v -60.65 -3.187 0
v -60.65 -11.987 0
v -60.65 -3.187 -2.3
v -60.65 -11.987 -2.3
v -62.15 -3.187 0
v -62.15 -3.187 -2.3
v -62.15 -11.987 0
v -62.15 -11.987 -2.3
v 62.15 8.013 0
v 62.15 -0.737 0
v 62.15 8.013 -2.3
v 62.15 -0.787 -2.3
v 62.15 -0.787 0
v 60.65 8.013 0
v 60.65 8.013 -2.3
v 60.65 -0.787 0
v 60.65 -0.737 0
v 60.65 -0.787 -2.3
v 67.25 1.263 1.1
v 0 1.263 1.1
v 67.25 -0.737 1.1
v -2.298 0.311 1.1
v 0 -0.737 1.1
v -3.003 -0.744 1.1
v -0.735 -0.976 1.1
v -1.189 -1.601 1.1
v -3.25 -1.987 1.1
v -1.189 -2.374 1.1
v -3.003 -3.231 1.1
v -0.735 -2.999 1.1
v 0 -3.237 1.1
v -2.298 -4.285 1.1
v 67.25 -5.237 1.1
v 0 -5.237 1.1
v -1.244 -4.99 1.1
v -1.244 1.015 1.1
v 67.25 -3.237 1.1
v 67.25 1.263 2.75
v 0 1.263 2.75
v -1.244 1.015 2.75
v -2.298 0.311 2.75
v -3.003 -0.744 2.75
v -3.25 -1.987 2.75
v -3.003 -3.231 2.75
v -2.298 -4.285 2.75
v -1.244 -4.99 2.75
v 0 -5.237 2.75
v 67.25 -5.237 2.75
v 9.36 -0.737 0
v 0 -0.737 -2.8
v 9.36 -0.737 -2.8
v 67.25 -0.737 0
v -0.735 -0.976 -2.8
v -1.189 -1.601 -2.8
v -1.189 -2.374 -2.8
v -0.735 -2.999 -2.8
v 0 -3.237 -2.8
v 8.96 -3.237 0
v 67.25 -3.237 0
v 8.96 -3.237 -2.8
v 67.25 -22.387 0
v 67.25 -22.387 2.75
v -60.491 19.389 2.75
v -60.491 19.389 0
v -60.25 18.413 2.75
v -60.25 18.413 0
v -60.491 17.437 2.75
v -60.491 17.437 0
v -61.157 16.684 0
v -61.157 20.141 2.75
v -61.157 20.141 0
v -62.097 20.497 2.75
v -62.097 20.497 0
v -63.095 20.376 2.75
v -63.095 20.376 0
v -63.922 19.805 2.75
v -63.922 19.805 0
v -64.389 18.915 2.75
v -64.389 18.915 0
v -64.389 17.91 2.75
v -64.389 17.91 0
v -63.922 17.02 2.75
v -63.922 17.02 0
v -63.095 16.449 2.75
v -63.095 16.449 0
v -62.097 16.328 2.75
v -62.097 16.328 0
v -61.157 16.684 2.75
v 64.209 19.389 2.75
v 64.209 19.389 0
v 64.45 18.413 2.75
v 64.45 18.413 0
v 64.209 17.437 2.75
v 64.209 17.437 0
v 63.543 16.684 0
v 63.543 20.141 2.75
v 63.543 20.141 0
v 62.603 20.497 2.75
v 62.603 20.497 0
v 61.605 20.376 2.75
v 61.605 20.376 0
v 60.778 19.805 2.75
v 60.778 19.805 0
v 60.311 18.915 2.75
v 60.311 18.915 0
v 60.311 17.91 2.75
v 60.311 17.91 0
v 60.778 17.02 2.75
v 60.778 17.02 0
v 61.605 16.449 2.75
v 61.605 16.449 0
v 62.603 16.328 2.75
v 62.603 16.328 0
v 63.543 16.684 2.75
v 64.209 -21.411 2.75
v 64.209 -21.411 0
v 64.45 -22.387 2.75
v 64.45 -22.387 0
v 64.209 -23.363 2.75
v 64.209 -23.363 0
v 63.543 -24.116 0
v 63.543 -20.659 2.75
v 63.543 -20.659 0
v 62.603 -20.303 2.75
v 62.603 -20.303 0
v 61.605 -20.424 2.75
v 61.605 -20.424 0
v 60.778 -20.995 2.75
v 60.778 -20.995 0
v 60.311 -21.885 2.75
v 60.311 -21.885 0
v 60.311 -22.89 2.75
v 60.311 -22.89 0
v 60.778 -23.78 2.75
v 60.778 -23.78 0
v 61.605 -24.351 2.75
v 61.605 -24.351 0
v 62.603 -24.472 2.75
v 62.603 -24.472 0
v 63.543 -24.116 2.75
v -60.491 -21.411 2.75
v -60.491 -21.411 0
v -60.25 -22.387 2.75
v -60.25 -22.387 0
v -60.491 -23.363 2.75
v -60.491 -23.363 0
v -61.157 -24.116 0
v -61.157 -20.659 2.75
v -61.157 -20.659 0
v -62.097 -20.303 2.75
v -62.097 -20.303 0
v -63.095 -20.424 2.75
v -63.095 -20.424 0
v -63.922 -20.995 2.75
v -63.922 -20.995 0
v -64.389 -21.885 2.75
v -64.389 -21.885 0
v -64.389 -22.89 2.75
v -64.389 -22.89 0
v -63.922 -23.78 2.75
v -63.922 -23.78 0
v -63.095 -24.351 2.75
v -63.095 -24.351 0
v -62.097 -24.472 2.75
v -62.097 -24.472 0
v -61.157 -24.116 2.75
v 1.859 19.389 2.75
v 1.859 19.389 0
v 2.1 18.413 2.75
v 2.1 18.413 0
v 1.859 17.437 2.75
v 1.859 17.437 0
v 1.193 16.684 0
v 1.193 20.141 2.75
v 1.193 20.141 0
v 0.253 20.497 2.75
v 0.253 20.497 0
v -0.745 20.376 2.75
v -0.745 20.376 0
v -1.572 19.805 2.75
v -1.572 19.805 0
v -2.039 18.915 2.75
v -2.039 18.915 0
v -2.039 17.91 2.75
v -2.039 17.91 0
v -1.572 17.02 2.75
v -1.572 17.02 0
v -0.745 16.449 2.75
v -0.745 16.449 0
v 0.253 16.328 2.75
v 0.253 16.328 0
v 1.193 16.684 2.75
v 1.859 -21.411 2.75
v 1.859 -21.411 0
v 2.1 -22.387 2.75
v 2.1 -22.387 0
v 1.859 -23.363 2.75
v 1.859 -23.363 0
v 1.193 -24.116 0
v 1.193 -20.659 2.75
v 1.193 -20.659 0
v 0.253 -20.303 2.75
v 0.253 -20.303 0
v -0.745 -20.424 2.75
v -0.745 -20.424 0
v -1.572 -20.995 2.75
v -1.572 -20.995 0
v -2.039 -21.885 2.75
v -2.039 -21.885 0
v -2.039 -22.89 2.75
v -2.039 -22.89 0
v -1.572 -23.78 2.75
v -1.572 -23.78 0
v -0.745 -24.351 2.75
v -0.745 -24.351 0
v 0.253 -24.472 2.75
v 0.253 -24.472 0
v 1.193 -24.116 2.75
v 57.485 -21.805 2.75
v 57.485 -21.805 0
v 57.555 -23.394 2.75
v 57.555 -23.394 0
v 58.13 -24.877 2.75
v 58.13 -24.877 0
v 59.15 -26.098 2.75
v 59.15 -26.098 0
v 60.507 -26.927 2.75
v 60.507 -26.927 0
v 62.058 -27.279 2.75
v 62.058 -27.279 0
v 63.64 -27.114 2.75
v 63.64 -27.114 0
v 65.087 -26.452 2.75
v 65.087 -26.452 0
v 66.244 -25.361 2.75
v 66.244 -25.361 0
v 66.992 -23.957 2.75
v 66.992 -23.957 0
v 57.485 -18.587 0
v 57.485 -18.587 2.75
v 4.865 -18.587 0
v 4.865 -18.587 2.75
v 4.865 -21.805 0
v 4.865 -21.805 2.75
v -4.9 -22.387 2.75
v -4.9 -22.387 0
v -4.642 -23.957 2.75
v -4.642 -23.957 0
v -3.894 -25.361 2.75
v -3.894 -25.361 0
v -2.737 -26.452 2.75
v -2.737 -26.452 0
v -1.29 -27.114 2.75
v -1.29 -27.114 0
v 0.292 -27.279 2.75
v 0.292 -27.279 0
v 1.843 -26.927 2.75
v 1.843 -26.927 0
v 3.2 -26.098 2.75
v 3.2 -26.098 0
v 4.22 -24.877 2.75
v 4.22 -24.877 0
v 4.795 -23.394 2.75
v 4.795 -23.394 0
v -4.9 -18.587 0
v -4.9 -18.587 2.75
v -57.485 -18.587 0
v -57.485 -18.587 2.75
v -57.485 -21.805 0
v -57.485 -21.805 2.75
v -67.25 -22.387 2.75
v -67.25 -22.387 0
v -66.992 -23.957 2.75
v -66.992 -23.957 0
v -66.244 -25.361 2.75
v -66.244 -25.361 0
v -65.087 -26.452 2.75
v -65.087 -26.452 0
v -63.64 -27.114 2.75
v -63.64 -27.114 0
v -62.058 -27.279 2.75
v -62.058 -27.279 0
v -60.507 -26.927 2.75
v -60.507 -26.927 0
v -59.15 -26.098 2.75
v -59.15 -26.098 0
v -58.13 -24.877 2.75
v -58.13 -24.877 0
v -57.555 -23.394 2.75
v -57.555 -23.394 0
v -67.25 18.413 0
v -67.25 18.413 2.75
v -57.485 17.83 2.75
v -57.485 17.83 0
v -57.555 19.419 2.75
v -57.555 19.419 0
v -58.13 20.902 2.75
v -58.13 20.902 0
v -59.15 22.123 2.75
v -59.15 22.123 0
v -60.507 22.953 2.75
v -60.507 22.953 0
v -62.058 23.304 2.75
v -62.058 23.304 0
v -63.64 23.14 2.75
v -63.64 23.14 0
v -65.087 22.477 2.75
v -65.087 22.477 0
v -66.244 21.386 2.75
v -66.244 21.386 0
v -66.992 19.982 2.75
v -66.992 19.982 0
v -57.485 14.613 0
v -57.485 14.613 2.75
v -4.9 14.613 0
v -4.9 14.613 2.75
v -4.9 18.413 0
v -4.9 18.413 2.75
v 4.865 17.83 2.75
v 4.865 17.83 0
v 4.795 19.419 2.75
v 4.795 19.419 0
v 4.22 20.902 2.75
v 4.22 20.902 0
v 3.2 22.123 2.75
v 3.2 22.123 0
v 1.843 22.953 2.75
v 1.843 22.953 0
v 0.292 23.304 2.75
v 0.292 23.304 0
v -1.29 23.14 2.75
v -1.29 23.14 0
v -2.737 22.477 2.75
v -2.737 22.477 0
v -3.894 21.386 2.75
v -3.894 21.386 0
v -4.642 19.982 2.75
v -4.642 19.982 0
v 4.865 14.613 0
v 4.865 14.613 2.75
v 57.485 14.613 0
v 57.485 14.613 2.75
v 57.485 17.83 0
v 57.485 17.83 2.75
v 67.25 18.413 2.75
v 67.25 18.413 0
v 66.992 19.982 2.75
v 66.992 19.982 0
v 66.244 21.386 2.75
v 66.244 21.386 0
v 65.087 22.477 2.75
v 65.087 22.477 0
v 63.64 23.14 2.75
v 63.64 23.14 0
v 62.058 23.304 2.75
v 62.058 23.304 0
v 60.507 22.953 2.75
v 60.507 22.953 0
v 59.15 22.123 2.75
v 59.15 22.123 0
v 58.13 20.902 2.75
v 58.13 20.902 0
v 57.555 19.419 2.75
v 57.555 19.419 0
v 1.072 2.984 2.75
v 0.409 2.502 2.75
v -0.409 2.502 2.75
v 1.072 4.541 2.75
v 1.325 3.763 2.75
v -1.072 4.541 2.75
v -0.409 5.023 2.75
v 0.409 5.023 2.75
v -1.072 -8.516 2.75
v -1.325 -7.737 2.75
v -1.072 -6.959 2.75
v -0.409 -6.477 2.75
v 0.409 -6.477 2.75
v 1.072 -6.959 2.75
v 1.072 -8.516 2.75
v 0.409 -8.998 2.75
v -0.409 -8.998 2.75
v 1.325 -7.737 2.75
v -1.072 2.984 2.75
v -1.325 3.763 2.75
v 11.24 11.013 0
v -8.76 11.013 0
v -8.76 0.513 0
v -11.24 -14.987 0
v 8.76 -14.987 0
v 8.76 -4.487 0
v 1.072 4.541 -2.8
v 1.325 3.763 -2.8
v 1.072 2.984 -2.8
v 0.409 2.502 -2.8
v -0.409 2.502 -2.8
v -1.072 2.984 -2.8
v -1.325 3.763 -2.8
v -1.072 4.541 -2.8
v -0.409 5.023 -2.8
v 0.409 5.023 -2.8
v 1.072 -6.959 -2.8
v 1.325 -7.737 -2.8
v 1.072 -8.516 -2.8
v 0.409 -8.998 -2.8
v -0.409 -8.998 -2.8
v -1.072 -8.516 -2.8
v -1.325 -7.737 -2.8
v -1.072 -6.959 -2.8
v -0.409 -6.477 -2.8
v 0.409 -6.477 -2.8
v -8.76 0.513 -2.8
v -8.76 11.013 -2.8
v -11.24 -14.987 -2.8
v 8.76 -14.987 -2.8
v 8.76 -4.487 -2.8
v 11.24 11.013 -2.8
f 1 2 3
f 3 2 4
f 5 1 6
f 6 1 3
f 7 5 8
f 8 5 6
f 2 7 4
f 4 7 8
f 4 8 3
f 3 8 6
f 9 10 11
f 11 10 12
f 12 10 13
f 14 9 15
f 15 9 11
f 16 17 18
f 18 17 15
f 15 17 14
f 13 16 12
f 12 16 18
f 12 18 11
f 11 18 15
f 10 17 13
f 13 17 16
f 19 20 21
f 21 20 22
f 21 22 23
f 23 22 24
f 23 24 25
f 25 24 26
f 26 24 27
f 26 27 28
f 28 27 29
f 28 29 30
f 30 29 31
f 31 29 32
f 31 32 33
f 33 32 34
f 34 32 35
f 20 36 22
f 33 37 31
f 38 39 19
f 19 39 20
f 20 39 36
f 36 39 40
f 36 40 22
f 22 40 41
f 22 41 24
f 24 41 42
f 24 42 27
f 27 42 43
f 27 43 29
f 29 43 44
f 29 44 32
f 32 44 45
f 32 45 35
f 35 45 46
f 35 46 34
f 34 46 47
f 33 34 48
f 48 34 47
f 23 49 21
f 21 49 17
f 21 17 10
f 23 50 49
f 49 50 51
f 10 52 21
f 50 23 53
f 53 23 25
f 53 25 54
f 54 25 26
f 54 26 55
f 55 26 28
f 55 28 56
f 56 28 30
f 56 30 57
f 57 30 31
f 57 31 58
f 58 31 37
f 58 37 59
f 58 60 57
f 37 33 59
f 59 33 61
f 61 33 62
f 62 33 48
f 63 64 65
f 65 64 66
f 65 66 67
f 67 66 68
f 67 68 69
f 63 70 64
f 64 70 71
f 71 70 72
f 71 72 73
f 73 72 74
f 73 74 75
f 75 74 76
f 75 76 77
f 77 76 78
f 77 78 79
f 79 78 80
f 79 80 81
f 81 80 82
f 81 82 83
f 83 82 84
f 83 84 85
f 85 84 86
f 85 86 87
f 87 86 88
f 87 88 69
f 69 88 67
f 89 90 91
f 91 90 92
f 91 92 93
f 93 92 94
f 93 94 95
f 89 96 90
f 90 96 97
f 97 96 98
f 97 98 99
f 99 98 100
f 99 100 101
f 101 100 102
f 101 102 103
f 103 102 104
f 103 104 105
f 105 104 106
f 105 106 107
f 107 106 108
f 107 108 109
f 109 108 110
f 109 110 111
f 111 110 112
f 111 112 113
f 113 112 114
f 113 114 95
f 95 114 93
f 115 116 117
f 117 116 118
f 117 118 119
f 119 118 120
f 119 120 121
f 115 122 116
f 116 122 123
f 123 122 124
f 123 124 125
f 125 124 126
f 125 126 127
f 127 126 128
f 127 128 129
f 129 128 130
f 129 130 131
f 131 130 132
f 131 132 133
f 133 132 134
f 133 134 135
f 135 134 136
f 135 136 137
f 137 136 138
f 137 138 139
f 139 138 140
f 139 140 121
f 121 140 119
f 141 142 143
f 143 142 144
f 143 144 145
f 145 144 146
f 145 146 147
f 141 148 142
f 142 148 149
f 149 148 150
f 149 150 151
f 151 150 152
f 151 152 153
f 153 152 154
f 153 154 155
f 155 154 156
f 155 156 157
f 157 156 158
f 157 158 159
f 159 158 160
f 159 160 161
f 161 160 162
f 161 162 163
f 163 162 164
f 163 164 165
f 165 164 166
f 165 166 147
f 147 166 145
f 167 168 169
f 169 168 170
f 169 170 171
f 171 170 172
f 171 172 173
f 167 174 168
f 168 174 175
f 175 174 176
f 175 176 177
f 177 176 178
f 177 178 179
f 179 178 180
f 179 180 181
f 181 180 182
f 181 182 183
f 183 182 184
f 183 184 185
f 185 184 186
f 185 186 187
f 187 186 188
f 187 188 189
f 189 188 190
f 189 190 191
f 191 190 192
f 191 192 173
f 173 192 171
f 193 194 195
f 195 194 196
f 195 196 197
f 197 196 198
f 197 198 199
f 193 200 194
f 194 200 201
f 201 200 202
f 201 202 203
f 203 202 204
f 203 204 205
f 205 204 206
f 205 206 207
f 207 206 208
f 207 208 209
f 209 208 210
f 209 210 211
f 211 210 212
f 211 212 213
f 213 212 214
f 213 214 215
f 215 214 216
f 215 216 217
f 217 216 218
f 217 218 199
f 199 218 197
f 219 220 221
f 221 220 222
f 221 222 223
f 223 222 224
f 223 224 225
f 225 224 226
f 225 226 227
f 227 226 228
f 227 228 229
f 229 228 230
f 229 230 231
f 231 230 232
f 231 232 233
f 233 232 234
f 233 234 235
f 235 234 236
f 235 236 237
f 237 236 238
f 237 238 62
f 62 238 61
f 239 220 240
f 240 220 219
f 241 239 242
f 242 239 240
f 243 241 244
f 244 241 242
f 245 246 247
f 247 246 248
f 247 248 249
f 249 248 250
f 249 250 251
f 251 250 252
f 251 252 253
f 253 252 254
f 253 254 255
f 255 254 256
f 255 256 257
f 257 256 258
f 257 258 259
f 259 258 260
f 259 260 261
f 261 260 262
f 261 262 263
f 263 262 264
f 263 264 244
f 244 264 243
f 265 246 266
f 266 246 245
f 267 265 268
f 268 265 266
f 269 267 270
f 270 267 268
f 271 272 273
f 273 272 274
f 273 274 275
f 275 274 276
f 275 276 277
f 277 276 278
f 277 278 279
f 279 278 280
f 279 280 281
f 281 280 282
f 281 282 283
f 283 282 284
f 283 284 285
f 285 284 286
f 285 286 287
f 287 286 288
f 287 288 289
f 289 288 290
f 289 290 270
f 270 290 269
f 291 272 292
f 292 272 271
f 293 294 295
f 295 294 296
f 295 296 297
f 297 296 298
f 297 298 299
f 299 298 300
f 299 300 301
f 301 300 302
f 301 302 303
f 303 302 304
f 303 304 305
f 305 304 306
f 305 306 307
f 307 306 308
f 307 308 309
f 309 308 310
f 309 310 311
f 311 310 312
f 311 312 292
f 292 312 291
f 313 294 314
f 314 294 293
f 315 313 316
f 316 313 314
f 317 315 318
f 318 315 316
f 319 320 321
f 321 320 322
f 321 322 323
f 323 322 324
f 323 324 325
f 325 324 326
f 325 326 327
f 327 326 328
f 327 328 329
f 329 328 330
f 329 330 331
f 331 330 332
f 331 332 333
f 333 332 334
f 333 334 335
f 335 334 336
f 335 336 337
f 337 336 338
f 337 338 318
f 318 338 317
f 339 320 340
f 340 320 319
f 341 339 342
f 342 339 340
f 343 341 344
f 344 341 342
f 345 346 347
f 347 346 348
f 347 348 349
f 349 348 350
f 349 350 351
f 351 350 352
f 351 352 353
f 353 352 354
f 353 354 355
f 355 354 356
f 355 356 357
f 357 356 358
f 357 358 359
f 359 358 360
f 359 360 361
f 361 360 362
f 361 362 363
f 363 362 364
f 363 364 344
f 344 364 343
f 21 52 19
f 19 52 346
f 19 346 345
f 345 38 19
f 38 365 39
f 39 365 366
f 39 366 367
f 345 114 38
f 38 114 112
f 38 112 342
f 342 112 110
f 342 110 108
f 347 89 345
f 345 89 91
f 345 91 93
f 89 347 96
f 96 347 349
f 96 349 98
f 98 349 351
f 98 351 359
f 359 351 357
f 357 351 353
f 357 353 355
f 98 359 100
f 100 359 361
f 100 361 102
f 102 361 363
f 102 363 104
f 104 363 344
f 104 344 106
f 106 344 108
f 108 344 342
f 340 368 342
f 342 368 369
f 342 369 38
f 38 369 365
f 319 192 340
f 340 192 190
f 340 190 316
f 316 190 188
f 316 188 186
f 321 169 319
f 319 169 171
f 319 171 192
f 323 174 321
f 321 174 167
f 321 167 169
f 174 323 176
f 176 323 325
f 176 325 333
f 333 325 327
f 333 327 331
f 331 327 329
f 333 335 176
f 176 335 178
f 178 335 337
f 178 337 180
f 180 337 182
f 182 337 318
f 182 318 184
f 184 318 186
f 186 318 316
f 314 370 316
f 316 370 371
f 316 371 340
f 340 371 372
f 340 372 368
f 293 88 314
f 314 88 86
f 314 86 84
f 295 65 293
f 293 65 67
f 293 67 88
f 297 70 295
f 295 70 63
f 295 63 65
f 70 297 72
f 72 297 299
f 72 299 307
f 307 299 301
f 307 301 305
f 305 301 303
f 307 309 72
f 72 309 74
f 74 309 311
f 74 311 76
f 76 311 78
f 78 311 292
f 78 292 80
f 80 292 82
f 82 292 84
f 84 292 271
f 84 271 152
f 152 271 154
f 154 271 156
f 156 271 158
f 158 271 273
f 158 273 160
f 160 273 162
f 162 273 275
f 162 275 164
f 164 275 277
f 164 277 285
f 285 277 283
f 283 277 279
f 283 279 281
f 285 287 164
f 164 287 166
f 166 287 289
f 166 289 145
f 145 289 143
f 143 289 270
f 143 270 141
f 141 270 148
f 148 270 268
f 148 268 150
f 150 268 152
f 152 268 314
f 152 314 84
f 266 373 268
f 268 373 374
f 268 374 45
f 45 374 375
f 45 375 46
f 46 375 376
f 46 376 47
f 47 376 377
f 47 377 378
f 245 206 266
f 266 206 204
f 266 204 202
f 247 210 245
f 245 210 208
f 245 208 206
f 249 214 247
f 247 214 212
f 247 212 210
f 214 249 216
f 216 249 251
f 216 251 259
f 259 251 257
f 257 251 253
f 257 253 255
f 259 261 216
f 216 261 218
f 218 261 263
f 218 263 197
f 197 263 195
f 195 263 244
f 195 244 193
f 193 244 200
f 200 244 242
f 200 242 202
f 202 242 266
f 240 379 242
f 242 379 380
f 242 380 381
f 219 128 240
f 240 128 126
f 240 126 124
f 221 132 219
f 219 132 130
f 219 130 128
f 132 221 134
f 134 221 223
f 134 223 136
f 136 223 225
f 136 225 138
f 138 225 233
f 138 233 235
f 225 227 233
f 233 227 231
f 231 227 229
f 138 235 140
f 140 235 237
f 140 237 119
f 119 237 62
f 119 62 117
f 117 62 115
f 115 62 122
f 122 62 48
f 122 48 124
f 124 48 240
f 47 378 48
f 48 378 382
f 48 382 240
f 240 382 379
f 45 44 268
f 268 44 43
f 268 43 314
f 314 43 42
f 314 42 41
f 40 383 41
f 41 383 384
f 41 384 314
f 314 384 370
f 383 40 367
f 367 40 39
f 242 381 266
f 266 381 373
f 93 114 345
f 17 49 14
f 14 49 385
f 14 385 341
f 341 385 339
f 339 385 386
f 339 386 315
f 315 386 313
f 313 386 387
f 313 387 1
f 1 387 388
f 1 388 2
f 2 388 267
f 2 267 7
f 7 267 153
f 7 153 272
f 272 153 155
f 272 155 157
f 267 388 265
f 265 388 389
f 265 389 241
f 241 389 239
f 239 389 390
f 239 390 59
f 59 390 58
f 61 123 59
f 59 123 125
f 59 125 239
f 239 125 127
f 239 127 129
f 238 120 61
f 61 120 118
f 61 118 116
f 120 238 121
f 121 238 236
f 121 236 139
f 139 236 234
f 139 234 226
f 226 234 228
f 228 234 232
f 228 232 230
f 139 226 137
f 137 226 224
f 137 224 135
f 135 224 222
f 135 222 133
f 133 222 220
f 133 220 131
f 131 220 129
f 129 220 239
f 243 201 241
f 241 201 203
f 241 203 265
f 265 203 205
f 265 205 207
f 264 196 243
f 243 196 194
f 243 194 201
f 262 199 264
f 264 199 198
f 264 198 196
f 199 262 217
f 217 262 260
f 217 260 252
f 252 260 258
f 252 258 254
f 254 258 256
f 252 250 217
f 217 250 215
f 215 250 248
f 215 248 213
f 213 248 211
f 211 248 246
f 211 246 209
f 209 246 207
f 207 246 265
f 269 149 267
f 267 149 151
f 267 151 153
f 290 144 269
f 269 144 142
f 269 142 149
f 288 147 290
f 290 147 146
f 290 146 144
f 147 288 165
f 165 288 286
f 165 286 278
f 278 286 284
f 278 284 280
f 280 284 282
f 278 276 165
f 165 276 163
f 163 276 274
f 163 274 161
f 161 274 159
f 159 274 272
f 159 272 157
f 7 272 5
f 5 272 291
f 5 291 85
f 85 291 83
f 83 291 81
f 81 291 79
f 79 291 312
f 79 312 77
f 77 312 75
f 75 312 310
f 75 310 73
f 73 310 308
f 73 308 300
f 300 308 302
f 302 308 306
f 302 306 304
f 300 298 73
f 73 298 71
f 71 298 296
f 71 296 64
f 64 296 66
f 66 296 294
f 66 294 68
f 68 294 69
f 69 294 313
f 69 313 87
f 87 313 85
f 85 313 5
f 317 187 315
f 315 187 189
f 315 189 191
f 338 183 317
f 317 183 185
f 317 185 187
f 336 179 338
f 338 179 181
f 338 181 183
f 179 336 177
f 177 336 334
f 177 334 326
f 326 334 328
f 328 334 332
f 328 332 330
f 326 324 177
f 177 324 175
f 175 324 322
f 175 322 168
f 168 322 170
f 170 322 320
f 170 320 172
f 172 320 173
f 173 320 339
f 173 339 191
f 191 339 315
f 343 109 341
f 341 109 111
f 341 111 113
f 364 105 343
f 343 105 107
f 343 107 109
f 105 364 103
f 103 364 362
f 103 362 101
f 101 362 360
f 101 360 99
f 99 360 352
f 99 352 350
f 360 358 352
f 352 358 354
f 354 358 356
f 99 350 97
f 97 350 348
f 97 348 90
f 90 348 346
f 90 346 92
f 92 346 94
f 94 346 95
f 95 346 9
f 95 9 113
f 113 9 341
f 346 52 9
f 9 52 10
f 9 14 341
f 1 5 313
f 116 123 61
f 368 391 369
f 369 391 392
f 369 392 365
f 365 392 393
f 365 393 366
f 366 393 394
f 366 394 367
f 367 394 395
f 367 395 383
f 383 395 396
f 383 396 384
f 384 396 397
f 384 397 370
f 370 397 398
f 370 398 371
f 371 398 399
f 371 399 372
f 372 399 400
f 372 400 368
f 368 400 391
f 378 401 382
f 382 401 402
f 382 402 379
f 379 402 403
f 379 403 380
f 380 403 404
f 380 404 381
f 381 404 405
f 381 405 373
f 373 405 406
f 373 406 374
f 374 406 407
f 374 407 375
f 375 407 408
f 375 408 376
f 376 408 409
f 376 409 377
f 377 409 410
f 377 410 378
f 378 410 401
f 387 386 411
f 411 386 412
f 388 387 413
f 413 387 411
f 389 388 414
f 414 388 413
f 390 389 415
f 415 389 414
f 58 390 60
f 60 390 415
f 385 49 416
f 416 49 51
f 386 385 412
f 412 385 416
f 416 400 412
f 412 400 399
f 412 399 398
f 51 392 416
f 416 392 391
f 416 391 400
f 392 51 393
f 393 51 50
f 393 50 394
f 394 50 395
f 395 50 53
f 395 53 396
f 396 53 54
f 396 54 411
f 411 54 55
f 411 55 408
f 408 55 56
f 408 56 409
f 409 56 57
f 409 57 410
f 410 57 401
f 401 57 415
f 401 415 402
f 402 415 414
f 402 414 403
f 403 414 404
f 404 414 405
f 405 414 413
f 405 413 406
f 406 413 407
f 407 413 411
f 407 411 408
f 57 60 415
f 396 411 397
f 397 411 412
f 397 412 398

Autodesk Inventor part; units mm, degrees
ref_plane "YZ Plane" through (0, 0, 0) normal (1, 0, 0) x (0, 1, 0)
ref_plane "XZ Plane" through (0, 0, 0) normal (0, 1, 0) x (-1, 0, 0)
ref_plane "XY Plane" through (0, 0, 0) normal (0, 0, 1) x (1, 0, 0)
sketch "Sketch1" plane through (0, 0, 0) normal (0, 0, 1) x (1, 0, 0)
  line L0 (-8.76, 11.0126) -> (-8.76, 0.5126)
  line L1 (-8.76, 0.5126) -> (-11.24, -14.9874)
  line L2 (-11.24, -14.9874) -> (8.76, -14.9874)
  line L3 (8.76, -14.9874) -> (8.76, -4.4874)
  line L4 (11.24, 11.0126) -> (-8.76, 11.0126)
  line L5 (0, 12.916) -> (0, -18.5653)
  line L6 (-8.76, 0.5126) -> (13.6474, 0.5126) construction
  line L7 (8.76, -4.4874) -> (-2.6872, -4.4874) construction
  line L8 (-5.8361, -1.9874) -> (18.6079, -1.9874) construction
  circle A0 centre (0, -7.7374) radius 1.325
  circle A1 centre (0, 3.7626) radius 1.325
  line L9 (22.7948, -1.9874) -> (0, -1.9874) construction
  line L10 (9.36, -0.7374) -> (0, -0.7374)
  line L11 (0, -3.2374) -> (8.96, -3.2374)
  arc A2 (0, -0.7374) -> (0, -3.2374) centre (0, -1.9874) ccw
  line L12 (8.76, -4.4874) -> (8.96, -3.2374)
  line L13 (9.36, -0.7374) -> (11.24, 11.0126)
  point P0 (0, 0)
  point P1 (-8.76, -4.4874)
  point P2 (11.3974, -1.9874)
  dimension "d0" = 2.48
  dimension "d1" = 15.5
  dimension "d2" = 15.5
  dimension "d3" = 2.48
  dimension "d4" = 10.5
  dimension "d5" = 10.5
  dimension "d6" = 20
  dimension "d7" = 20
  dimension "d8" = 2.65
  dimension "d9" = 7.25
  dimension "d12" = 2.5
  dimension "d26" = 11.75
  dimension "d27" = 14.25
extrude "Extrusion1" add sketch "Sketch1" against normal blind 2.8 contours L4 L5 A1 A2 A0 L2 L1 L0 | L4 L13 L10 L5 A1 | L5 A0 L11 L12 L3 L2
sketch "Sketch2" plane through (0, 0, 0) normal (0, 0, 1) x (1, 0, 0)
  line L0 (-67.25, -18.5874) -> (-67.25, 14.6126)
  line L1 (0, 12.916) -> (0, -18.5653) construction
  line L2 (-5.8361, -1.9874) -> (18.6079, -1.9874) construction
  line L3 (-67.25, 14.6126) -> (-67.25, 18.4126)
  line L4 (-57.4847, 14.6126) -> (-57.4847, 17.8301)
  arc A0 (-57.4847, 17.8301) -> (-67.25, 18.4126) centre (-62.35, 18.4126) ccw
  line L5 (0, 12.916) -> (0, -18.5653)
  circle A1 centre (-62.35, 18.4126) radius 2.1
  arc A2 (0, -0.7374) -> (0, -3.2374) centre (0, -1.9874) ccw projected
  line L6 (-1.25, -1.9874) -> (17.7749, -1.9874) construction
  line L7 (0, -3.2374) -> (67.25, -3.2374)
  line L8 (67.25, -0.7374) -> (0, -0.7374)
  arc A3 (0, -0.7374) -> (0, -3.2374) centre (0, -1.9874) ccw
  line L9 (67.25, 14.6126) -> (67.25, -0.7374)
  line L10 (67.25, -3.2374) -> (67.25, -18.5874)
  line L11 (-4.9, -18.5874) -> (-24.8081, -18.5874)
  circle A4 centre (0, 3.7626) radius 1.325 projected
  circle A5 centre (0, -7.7374) radius 1.325 projected
  line L12 (67.25, 14.6126) -> (67.25, 18.4126)
  line L13 (57.4847, 14.6126) -> (57.4847, 17.8301)
  arc A6 (67.25, 18.4126) -> (57.4847, 17.8301) centre (62.35, 18.4126) ccw
  circle A7 centre (62.35, 18.4126) radius 2.1
  line L14 (-67.25, -18.5874) -> (-67.25, -22.3874)
  line L15 (-57.4847, -18.5874) -> (-57.4847, -21.8049)
  arc A8 (-67.25, -22.3874) -> (-57.4847, -21.8049) centre (-62.35, -22.3874) ccw
  circle A9 centre (-62.35, -22.3874) radius 2.1
  line L16 (57.4847, -18.5874) -> (57.4847, -21.8049)
  circle A10 centre (62.35, -22.3874) radius 2.1
  line L17 (67.25, -18.5874) -> (67.25, -22.3874)
  arc A11 (57.4847, -21.8049) -> (67.25, -22.3874) centre (62.35, -22.3874) ccw
  line L18 (-4.9, 14.6126) -> (-4.9, 18.4126)
  line L19 (4.8653, 14.6126) -> (4.8653, 17.8301)
  arc A12 (4.8653, 17.8301) -> (-4.9, 18.4126) centre (0, 18.4126) ccw
  circle A13 centre (0, 18.4126) radius 2.1
  line L20 (-57.4847, 14.6126) -> (-4.9, 14.6126)
  line L21 (4.8653, 14.6126) -> (57.4847, 14.6126)
  line L22 (-4.9, -18.5874) -> (-4.9, -22.3874)
  line L23 (4.8653, -18.5874) -> (4.8653, -21.8049)
  arc A14 (-4.9, -22.3874) -> (4.8653, -21.8049) centre (0, -22.3874) ccw
  circle A15 centre (0, -22.3874) radius 2.1
  line L24 (57.4847, -18.5874) -> (4.8653, -18.5874)
  line L25 (-4.9, -18.5874) -> (-57.4847, -18.5874)
  point P0 (0, 0)
  point P1 (8.2624, -1.9874)
  point P2 (67.25, 14.6126)
  point P3 (39.75, 14.6126)
  point P4 (67.25, -18.5874)
  dimension "d15" = 4.9
  dimension "d16" = 4.2
  dimension "d25" = 134.5
  dimension "d38" = 4.9
  dimension "d39" = 4.2
extrude "Extrusion2" add sketch "Sketch2" along normal blind 2.75 contours L0 L3 A0 L4 L20 L18 A12 L19 L21 L13 A6 L12 L9 L8 A2 L7 L10 L17 A11 L16 L24 L23 A14 L22 L11 L25 L15 A8 L14
sketch "Sketch3" plane through (0, 0, 2.75) normal (0, 0, 1) x (1, 0, 0)
  arc A0 (0, -0.7374) -> (0, -3.2374) centre (0, -1.9874) ccw projected
  line L0 (0, -1.9874) -> (79.0333, -1.9874) construction
  line L1 (0, -5.2374) -> (79.0333, -5.2374)
  line L2 (79.0333, 1.2626) -> (0, 1.2626)
  arc A1 (0, 1.2626) -> (0, -5.2374) centre (0, -1.9874) ccw
  arc A2 (79.0333, -5.2374) -> (79.0333, 1.2626) centre (79.0333, -1.9874) ccw
  point P0 (0, 0)
  point P1 (39.5166, -1.9874)
  dimension "d20" = 3.25
extrude "Extrusion3" cut sketch "Sketch3" against normal blind 1.65
sketch "Sketch4" plane through (0, 0, 0) normal (0, 0, -1) x (-1, 0, 0)
  line L0 (-62.15, 8.0126) -> (-60.65, 8.0126)
  line L1 (-60.65, 8.0126) -> (-60.65, -0.7874)
  line L2 (-60.65, -0.7874) -> (-62.15, -0.7874)
  line L3 (-62.15, -0.7874) -> (-62.15, 8.0126)
  line L4 (-67.25, -0.7374) -> (-67.25, 18.4126) projected
  line L5 (-57.4847, 14.6126) -> (57.4847, 14.6126) projected
  line L6 (60.65, -3.1874) -> (62.15, -3.1874)
  line L7 (62.15, -3.1874) -> (62.15, -11.9874)
  line L8 (62.15, -11.9874) -> (60.65, -11.9874)
  line L9 (60.65, -11.9874) -> (60.65, -3.1874)
  line L10 (67.25, 18.4126) -> (67.25, -22.3874) projected
  line L11 (57.4847, -18.5874) -> (-57.4847, -18.5874) projected
  point P0 (0, 0)
  point P1 (-67.25, 8.8376)
  dimension "d28" = 5.1
  dimension "d29" = 6.6
  dimension "d30" = 8.8
  dimension "d31" = 1.5
  dimension "d32" = 5.1
  dimension "d34" = 8.8
  dimension "d35" = 1.5
extrude "Extrusion4" add sketch "Sketch4" along normal blind 2.3
properties part number "Gripper_BackPlate_Long"
